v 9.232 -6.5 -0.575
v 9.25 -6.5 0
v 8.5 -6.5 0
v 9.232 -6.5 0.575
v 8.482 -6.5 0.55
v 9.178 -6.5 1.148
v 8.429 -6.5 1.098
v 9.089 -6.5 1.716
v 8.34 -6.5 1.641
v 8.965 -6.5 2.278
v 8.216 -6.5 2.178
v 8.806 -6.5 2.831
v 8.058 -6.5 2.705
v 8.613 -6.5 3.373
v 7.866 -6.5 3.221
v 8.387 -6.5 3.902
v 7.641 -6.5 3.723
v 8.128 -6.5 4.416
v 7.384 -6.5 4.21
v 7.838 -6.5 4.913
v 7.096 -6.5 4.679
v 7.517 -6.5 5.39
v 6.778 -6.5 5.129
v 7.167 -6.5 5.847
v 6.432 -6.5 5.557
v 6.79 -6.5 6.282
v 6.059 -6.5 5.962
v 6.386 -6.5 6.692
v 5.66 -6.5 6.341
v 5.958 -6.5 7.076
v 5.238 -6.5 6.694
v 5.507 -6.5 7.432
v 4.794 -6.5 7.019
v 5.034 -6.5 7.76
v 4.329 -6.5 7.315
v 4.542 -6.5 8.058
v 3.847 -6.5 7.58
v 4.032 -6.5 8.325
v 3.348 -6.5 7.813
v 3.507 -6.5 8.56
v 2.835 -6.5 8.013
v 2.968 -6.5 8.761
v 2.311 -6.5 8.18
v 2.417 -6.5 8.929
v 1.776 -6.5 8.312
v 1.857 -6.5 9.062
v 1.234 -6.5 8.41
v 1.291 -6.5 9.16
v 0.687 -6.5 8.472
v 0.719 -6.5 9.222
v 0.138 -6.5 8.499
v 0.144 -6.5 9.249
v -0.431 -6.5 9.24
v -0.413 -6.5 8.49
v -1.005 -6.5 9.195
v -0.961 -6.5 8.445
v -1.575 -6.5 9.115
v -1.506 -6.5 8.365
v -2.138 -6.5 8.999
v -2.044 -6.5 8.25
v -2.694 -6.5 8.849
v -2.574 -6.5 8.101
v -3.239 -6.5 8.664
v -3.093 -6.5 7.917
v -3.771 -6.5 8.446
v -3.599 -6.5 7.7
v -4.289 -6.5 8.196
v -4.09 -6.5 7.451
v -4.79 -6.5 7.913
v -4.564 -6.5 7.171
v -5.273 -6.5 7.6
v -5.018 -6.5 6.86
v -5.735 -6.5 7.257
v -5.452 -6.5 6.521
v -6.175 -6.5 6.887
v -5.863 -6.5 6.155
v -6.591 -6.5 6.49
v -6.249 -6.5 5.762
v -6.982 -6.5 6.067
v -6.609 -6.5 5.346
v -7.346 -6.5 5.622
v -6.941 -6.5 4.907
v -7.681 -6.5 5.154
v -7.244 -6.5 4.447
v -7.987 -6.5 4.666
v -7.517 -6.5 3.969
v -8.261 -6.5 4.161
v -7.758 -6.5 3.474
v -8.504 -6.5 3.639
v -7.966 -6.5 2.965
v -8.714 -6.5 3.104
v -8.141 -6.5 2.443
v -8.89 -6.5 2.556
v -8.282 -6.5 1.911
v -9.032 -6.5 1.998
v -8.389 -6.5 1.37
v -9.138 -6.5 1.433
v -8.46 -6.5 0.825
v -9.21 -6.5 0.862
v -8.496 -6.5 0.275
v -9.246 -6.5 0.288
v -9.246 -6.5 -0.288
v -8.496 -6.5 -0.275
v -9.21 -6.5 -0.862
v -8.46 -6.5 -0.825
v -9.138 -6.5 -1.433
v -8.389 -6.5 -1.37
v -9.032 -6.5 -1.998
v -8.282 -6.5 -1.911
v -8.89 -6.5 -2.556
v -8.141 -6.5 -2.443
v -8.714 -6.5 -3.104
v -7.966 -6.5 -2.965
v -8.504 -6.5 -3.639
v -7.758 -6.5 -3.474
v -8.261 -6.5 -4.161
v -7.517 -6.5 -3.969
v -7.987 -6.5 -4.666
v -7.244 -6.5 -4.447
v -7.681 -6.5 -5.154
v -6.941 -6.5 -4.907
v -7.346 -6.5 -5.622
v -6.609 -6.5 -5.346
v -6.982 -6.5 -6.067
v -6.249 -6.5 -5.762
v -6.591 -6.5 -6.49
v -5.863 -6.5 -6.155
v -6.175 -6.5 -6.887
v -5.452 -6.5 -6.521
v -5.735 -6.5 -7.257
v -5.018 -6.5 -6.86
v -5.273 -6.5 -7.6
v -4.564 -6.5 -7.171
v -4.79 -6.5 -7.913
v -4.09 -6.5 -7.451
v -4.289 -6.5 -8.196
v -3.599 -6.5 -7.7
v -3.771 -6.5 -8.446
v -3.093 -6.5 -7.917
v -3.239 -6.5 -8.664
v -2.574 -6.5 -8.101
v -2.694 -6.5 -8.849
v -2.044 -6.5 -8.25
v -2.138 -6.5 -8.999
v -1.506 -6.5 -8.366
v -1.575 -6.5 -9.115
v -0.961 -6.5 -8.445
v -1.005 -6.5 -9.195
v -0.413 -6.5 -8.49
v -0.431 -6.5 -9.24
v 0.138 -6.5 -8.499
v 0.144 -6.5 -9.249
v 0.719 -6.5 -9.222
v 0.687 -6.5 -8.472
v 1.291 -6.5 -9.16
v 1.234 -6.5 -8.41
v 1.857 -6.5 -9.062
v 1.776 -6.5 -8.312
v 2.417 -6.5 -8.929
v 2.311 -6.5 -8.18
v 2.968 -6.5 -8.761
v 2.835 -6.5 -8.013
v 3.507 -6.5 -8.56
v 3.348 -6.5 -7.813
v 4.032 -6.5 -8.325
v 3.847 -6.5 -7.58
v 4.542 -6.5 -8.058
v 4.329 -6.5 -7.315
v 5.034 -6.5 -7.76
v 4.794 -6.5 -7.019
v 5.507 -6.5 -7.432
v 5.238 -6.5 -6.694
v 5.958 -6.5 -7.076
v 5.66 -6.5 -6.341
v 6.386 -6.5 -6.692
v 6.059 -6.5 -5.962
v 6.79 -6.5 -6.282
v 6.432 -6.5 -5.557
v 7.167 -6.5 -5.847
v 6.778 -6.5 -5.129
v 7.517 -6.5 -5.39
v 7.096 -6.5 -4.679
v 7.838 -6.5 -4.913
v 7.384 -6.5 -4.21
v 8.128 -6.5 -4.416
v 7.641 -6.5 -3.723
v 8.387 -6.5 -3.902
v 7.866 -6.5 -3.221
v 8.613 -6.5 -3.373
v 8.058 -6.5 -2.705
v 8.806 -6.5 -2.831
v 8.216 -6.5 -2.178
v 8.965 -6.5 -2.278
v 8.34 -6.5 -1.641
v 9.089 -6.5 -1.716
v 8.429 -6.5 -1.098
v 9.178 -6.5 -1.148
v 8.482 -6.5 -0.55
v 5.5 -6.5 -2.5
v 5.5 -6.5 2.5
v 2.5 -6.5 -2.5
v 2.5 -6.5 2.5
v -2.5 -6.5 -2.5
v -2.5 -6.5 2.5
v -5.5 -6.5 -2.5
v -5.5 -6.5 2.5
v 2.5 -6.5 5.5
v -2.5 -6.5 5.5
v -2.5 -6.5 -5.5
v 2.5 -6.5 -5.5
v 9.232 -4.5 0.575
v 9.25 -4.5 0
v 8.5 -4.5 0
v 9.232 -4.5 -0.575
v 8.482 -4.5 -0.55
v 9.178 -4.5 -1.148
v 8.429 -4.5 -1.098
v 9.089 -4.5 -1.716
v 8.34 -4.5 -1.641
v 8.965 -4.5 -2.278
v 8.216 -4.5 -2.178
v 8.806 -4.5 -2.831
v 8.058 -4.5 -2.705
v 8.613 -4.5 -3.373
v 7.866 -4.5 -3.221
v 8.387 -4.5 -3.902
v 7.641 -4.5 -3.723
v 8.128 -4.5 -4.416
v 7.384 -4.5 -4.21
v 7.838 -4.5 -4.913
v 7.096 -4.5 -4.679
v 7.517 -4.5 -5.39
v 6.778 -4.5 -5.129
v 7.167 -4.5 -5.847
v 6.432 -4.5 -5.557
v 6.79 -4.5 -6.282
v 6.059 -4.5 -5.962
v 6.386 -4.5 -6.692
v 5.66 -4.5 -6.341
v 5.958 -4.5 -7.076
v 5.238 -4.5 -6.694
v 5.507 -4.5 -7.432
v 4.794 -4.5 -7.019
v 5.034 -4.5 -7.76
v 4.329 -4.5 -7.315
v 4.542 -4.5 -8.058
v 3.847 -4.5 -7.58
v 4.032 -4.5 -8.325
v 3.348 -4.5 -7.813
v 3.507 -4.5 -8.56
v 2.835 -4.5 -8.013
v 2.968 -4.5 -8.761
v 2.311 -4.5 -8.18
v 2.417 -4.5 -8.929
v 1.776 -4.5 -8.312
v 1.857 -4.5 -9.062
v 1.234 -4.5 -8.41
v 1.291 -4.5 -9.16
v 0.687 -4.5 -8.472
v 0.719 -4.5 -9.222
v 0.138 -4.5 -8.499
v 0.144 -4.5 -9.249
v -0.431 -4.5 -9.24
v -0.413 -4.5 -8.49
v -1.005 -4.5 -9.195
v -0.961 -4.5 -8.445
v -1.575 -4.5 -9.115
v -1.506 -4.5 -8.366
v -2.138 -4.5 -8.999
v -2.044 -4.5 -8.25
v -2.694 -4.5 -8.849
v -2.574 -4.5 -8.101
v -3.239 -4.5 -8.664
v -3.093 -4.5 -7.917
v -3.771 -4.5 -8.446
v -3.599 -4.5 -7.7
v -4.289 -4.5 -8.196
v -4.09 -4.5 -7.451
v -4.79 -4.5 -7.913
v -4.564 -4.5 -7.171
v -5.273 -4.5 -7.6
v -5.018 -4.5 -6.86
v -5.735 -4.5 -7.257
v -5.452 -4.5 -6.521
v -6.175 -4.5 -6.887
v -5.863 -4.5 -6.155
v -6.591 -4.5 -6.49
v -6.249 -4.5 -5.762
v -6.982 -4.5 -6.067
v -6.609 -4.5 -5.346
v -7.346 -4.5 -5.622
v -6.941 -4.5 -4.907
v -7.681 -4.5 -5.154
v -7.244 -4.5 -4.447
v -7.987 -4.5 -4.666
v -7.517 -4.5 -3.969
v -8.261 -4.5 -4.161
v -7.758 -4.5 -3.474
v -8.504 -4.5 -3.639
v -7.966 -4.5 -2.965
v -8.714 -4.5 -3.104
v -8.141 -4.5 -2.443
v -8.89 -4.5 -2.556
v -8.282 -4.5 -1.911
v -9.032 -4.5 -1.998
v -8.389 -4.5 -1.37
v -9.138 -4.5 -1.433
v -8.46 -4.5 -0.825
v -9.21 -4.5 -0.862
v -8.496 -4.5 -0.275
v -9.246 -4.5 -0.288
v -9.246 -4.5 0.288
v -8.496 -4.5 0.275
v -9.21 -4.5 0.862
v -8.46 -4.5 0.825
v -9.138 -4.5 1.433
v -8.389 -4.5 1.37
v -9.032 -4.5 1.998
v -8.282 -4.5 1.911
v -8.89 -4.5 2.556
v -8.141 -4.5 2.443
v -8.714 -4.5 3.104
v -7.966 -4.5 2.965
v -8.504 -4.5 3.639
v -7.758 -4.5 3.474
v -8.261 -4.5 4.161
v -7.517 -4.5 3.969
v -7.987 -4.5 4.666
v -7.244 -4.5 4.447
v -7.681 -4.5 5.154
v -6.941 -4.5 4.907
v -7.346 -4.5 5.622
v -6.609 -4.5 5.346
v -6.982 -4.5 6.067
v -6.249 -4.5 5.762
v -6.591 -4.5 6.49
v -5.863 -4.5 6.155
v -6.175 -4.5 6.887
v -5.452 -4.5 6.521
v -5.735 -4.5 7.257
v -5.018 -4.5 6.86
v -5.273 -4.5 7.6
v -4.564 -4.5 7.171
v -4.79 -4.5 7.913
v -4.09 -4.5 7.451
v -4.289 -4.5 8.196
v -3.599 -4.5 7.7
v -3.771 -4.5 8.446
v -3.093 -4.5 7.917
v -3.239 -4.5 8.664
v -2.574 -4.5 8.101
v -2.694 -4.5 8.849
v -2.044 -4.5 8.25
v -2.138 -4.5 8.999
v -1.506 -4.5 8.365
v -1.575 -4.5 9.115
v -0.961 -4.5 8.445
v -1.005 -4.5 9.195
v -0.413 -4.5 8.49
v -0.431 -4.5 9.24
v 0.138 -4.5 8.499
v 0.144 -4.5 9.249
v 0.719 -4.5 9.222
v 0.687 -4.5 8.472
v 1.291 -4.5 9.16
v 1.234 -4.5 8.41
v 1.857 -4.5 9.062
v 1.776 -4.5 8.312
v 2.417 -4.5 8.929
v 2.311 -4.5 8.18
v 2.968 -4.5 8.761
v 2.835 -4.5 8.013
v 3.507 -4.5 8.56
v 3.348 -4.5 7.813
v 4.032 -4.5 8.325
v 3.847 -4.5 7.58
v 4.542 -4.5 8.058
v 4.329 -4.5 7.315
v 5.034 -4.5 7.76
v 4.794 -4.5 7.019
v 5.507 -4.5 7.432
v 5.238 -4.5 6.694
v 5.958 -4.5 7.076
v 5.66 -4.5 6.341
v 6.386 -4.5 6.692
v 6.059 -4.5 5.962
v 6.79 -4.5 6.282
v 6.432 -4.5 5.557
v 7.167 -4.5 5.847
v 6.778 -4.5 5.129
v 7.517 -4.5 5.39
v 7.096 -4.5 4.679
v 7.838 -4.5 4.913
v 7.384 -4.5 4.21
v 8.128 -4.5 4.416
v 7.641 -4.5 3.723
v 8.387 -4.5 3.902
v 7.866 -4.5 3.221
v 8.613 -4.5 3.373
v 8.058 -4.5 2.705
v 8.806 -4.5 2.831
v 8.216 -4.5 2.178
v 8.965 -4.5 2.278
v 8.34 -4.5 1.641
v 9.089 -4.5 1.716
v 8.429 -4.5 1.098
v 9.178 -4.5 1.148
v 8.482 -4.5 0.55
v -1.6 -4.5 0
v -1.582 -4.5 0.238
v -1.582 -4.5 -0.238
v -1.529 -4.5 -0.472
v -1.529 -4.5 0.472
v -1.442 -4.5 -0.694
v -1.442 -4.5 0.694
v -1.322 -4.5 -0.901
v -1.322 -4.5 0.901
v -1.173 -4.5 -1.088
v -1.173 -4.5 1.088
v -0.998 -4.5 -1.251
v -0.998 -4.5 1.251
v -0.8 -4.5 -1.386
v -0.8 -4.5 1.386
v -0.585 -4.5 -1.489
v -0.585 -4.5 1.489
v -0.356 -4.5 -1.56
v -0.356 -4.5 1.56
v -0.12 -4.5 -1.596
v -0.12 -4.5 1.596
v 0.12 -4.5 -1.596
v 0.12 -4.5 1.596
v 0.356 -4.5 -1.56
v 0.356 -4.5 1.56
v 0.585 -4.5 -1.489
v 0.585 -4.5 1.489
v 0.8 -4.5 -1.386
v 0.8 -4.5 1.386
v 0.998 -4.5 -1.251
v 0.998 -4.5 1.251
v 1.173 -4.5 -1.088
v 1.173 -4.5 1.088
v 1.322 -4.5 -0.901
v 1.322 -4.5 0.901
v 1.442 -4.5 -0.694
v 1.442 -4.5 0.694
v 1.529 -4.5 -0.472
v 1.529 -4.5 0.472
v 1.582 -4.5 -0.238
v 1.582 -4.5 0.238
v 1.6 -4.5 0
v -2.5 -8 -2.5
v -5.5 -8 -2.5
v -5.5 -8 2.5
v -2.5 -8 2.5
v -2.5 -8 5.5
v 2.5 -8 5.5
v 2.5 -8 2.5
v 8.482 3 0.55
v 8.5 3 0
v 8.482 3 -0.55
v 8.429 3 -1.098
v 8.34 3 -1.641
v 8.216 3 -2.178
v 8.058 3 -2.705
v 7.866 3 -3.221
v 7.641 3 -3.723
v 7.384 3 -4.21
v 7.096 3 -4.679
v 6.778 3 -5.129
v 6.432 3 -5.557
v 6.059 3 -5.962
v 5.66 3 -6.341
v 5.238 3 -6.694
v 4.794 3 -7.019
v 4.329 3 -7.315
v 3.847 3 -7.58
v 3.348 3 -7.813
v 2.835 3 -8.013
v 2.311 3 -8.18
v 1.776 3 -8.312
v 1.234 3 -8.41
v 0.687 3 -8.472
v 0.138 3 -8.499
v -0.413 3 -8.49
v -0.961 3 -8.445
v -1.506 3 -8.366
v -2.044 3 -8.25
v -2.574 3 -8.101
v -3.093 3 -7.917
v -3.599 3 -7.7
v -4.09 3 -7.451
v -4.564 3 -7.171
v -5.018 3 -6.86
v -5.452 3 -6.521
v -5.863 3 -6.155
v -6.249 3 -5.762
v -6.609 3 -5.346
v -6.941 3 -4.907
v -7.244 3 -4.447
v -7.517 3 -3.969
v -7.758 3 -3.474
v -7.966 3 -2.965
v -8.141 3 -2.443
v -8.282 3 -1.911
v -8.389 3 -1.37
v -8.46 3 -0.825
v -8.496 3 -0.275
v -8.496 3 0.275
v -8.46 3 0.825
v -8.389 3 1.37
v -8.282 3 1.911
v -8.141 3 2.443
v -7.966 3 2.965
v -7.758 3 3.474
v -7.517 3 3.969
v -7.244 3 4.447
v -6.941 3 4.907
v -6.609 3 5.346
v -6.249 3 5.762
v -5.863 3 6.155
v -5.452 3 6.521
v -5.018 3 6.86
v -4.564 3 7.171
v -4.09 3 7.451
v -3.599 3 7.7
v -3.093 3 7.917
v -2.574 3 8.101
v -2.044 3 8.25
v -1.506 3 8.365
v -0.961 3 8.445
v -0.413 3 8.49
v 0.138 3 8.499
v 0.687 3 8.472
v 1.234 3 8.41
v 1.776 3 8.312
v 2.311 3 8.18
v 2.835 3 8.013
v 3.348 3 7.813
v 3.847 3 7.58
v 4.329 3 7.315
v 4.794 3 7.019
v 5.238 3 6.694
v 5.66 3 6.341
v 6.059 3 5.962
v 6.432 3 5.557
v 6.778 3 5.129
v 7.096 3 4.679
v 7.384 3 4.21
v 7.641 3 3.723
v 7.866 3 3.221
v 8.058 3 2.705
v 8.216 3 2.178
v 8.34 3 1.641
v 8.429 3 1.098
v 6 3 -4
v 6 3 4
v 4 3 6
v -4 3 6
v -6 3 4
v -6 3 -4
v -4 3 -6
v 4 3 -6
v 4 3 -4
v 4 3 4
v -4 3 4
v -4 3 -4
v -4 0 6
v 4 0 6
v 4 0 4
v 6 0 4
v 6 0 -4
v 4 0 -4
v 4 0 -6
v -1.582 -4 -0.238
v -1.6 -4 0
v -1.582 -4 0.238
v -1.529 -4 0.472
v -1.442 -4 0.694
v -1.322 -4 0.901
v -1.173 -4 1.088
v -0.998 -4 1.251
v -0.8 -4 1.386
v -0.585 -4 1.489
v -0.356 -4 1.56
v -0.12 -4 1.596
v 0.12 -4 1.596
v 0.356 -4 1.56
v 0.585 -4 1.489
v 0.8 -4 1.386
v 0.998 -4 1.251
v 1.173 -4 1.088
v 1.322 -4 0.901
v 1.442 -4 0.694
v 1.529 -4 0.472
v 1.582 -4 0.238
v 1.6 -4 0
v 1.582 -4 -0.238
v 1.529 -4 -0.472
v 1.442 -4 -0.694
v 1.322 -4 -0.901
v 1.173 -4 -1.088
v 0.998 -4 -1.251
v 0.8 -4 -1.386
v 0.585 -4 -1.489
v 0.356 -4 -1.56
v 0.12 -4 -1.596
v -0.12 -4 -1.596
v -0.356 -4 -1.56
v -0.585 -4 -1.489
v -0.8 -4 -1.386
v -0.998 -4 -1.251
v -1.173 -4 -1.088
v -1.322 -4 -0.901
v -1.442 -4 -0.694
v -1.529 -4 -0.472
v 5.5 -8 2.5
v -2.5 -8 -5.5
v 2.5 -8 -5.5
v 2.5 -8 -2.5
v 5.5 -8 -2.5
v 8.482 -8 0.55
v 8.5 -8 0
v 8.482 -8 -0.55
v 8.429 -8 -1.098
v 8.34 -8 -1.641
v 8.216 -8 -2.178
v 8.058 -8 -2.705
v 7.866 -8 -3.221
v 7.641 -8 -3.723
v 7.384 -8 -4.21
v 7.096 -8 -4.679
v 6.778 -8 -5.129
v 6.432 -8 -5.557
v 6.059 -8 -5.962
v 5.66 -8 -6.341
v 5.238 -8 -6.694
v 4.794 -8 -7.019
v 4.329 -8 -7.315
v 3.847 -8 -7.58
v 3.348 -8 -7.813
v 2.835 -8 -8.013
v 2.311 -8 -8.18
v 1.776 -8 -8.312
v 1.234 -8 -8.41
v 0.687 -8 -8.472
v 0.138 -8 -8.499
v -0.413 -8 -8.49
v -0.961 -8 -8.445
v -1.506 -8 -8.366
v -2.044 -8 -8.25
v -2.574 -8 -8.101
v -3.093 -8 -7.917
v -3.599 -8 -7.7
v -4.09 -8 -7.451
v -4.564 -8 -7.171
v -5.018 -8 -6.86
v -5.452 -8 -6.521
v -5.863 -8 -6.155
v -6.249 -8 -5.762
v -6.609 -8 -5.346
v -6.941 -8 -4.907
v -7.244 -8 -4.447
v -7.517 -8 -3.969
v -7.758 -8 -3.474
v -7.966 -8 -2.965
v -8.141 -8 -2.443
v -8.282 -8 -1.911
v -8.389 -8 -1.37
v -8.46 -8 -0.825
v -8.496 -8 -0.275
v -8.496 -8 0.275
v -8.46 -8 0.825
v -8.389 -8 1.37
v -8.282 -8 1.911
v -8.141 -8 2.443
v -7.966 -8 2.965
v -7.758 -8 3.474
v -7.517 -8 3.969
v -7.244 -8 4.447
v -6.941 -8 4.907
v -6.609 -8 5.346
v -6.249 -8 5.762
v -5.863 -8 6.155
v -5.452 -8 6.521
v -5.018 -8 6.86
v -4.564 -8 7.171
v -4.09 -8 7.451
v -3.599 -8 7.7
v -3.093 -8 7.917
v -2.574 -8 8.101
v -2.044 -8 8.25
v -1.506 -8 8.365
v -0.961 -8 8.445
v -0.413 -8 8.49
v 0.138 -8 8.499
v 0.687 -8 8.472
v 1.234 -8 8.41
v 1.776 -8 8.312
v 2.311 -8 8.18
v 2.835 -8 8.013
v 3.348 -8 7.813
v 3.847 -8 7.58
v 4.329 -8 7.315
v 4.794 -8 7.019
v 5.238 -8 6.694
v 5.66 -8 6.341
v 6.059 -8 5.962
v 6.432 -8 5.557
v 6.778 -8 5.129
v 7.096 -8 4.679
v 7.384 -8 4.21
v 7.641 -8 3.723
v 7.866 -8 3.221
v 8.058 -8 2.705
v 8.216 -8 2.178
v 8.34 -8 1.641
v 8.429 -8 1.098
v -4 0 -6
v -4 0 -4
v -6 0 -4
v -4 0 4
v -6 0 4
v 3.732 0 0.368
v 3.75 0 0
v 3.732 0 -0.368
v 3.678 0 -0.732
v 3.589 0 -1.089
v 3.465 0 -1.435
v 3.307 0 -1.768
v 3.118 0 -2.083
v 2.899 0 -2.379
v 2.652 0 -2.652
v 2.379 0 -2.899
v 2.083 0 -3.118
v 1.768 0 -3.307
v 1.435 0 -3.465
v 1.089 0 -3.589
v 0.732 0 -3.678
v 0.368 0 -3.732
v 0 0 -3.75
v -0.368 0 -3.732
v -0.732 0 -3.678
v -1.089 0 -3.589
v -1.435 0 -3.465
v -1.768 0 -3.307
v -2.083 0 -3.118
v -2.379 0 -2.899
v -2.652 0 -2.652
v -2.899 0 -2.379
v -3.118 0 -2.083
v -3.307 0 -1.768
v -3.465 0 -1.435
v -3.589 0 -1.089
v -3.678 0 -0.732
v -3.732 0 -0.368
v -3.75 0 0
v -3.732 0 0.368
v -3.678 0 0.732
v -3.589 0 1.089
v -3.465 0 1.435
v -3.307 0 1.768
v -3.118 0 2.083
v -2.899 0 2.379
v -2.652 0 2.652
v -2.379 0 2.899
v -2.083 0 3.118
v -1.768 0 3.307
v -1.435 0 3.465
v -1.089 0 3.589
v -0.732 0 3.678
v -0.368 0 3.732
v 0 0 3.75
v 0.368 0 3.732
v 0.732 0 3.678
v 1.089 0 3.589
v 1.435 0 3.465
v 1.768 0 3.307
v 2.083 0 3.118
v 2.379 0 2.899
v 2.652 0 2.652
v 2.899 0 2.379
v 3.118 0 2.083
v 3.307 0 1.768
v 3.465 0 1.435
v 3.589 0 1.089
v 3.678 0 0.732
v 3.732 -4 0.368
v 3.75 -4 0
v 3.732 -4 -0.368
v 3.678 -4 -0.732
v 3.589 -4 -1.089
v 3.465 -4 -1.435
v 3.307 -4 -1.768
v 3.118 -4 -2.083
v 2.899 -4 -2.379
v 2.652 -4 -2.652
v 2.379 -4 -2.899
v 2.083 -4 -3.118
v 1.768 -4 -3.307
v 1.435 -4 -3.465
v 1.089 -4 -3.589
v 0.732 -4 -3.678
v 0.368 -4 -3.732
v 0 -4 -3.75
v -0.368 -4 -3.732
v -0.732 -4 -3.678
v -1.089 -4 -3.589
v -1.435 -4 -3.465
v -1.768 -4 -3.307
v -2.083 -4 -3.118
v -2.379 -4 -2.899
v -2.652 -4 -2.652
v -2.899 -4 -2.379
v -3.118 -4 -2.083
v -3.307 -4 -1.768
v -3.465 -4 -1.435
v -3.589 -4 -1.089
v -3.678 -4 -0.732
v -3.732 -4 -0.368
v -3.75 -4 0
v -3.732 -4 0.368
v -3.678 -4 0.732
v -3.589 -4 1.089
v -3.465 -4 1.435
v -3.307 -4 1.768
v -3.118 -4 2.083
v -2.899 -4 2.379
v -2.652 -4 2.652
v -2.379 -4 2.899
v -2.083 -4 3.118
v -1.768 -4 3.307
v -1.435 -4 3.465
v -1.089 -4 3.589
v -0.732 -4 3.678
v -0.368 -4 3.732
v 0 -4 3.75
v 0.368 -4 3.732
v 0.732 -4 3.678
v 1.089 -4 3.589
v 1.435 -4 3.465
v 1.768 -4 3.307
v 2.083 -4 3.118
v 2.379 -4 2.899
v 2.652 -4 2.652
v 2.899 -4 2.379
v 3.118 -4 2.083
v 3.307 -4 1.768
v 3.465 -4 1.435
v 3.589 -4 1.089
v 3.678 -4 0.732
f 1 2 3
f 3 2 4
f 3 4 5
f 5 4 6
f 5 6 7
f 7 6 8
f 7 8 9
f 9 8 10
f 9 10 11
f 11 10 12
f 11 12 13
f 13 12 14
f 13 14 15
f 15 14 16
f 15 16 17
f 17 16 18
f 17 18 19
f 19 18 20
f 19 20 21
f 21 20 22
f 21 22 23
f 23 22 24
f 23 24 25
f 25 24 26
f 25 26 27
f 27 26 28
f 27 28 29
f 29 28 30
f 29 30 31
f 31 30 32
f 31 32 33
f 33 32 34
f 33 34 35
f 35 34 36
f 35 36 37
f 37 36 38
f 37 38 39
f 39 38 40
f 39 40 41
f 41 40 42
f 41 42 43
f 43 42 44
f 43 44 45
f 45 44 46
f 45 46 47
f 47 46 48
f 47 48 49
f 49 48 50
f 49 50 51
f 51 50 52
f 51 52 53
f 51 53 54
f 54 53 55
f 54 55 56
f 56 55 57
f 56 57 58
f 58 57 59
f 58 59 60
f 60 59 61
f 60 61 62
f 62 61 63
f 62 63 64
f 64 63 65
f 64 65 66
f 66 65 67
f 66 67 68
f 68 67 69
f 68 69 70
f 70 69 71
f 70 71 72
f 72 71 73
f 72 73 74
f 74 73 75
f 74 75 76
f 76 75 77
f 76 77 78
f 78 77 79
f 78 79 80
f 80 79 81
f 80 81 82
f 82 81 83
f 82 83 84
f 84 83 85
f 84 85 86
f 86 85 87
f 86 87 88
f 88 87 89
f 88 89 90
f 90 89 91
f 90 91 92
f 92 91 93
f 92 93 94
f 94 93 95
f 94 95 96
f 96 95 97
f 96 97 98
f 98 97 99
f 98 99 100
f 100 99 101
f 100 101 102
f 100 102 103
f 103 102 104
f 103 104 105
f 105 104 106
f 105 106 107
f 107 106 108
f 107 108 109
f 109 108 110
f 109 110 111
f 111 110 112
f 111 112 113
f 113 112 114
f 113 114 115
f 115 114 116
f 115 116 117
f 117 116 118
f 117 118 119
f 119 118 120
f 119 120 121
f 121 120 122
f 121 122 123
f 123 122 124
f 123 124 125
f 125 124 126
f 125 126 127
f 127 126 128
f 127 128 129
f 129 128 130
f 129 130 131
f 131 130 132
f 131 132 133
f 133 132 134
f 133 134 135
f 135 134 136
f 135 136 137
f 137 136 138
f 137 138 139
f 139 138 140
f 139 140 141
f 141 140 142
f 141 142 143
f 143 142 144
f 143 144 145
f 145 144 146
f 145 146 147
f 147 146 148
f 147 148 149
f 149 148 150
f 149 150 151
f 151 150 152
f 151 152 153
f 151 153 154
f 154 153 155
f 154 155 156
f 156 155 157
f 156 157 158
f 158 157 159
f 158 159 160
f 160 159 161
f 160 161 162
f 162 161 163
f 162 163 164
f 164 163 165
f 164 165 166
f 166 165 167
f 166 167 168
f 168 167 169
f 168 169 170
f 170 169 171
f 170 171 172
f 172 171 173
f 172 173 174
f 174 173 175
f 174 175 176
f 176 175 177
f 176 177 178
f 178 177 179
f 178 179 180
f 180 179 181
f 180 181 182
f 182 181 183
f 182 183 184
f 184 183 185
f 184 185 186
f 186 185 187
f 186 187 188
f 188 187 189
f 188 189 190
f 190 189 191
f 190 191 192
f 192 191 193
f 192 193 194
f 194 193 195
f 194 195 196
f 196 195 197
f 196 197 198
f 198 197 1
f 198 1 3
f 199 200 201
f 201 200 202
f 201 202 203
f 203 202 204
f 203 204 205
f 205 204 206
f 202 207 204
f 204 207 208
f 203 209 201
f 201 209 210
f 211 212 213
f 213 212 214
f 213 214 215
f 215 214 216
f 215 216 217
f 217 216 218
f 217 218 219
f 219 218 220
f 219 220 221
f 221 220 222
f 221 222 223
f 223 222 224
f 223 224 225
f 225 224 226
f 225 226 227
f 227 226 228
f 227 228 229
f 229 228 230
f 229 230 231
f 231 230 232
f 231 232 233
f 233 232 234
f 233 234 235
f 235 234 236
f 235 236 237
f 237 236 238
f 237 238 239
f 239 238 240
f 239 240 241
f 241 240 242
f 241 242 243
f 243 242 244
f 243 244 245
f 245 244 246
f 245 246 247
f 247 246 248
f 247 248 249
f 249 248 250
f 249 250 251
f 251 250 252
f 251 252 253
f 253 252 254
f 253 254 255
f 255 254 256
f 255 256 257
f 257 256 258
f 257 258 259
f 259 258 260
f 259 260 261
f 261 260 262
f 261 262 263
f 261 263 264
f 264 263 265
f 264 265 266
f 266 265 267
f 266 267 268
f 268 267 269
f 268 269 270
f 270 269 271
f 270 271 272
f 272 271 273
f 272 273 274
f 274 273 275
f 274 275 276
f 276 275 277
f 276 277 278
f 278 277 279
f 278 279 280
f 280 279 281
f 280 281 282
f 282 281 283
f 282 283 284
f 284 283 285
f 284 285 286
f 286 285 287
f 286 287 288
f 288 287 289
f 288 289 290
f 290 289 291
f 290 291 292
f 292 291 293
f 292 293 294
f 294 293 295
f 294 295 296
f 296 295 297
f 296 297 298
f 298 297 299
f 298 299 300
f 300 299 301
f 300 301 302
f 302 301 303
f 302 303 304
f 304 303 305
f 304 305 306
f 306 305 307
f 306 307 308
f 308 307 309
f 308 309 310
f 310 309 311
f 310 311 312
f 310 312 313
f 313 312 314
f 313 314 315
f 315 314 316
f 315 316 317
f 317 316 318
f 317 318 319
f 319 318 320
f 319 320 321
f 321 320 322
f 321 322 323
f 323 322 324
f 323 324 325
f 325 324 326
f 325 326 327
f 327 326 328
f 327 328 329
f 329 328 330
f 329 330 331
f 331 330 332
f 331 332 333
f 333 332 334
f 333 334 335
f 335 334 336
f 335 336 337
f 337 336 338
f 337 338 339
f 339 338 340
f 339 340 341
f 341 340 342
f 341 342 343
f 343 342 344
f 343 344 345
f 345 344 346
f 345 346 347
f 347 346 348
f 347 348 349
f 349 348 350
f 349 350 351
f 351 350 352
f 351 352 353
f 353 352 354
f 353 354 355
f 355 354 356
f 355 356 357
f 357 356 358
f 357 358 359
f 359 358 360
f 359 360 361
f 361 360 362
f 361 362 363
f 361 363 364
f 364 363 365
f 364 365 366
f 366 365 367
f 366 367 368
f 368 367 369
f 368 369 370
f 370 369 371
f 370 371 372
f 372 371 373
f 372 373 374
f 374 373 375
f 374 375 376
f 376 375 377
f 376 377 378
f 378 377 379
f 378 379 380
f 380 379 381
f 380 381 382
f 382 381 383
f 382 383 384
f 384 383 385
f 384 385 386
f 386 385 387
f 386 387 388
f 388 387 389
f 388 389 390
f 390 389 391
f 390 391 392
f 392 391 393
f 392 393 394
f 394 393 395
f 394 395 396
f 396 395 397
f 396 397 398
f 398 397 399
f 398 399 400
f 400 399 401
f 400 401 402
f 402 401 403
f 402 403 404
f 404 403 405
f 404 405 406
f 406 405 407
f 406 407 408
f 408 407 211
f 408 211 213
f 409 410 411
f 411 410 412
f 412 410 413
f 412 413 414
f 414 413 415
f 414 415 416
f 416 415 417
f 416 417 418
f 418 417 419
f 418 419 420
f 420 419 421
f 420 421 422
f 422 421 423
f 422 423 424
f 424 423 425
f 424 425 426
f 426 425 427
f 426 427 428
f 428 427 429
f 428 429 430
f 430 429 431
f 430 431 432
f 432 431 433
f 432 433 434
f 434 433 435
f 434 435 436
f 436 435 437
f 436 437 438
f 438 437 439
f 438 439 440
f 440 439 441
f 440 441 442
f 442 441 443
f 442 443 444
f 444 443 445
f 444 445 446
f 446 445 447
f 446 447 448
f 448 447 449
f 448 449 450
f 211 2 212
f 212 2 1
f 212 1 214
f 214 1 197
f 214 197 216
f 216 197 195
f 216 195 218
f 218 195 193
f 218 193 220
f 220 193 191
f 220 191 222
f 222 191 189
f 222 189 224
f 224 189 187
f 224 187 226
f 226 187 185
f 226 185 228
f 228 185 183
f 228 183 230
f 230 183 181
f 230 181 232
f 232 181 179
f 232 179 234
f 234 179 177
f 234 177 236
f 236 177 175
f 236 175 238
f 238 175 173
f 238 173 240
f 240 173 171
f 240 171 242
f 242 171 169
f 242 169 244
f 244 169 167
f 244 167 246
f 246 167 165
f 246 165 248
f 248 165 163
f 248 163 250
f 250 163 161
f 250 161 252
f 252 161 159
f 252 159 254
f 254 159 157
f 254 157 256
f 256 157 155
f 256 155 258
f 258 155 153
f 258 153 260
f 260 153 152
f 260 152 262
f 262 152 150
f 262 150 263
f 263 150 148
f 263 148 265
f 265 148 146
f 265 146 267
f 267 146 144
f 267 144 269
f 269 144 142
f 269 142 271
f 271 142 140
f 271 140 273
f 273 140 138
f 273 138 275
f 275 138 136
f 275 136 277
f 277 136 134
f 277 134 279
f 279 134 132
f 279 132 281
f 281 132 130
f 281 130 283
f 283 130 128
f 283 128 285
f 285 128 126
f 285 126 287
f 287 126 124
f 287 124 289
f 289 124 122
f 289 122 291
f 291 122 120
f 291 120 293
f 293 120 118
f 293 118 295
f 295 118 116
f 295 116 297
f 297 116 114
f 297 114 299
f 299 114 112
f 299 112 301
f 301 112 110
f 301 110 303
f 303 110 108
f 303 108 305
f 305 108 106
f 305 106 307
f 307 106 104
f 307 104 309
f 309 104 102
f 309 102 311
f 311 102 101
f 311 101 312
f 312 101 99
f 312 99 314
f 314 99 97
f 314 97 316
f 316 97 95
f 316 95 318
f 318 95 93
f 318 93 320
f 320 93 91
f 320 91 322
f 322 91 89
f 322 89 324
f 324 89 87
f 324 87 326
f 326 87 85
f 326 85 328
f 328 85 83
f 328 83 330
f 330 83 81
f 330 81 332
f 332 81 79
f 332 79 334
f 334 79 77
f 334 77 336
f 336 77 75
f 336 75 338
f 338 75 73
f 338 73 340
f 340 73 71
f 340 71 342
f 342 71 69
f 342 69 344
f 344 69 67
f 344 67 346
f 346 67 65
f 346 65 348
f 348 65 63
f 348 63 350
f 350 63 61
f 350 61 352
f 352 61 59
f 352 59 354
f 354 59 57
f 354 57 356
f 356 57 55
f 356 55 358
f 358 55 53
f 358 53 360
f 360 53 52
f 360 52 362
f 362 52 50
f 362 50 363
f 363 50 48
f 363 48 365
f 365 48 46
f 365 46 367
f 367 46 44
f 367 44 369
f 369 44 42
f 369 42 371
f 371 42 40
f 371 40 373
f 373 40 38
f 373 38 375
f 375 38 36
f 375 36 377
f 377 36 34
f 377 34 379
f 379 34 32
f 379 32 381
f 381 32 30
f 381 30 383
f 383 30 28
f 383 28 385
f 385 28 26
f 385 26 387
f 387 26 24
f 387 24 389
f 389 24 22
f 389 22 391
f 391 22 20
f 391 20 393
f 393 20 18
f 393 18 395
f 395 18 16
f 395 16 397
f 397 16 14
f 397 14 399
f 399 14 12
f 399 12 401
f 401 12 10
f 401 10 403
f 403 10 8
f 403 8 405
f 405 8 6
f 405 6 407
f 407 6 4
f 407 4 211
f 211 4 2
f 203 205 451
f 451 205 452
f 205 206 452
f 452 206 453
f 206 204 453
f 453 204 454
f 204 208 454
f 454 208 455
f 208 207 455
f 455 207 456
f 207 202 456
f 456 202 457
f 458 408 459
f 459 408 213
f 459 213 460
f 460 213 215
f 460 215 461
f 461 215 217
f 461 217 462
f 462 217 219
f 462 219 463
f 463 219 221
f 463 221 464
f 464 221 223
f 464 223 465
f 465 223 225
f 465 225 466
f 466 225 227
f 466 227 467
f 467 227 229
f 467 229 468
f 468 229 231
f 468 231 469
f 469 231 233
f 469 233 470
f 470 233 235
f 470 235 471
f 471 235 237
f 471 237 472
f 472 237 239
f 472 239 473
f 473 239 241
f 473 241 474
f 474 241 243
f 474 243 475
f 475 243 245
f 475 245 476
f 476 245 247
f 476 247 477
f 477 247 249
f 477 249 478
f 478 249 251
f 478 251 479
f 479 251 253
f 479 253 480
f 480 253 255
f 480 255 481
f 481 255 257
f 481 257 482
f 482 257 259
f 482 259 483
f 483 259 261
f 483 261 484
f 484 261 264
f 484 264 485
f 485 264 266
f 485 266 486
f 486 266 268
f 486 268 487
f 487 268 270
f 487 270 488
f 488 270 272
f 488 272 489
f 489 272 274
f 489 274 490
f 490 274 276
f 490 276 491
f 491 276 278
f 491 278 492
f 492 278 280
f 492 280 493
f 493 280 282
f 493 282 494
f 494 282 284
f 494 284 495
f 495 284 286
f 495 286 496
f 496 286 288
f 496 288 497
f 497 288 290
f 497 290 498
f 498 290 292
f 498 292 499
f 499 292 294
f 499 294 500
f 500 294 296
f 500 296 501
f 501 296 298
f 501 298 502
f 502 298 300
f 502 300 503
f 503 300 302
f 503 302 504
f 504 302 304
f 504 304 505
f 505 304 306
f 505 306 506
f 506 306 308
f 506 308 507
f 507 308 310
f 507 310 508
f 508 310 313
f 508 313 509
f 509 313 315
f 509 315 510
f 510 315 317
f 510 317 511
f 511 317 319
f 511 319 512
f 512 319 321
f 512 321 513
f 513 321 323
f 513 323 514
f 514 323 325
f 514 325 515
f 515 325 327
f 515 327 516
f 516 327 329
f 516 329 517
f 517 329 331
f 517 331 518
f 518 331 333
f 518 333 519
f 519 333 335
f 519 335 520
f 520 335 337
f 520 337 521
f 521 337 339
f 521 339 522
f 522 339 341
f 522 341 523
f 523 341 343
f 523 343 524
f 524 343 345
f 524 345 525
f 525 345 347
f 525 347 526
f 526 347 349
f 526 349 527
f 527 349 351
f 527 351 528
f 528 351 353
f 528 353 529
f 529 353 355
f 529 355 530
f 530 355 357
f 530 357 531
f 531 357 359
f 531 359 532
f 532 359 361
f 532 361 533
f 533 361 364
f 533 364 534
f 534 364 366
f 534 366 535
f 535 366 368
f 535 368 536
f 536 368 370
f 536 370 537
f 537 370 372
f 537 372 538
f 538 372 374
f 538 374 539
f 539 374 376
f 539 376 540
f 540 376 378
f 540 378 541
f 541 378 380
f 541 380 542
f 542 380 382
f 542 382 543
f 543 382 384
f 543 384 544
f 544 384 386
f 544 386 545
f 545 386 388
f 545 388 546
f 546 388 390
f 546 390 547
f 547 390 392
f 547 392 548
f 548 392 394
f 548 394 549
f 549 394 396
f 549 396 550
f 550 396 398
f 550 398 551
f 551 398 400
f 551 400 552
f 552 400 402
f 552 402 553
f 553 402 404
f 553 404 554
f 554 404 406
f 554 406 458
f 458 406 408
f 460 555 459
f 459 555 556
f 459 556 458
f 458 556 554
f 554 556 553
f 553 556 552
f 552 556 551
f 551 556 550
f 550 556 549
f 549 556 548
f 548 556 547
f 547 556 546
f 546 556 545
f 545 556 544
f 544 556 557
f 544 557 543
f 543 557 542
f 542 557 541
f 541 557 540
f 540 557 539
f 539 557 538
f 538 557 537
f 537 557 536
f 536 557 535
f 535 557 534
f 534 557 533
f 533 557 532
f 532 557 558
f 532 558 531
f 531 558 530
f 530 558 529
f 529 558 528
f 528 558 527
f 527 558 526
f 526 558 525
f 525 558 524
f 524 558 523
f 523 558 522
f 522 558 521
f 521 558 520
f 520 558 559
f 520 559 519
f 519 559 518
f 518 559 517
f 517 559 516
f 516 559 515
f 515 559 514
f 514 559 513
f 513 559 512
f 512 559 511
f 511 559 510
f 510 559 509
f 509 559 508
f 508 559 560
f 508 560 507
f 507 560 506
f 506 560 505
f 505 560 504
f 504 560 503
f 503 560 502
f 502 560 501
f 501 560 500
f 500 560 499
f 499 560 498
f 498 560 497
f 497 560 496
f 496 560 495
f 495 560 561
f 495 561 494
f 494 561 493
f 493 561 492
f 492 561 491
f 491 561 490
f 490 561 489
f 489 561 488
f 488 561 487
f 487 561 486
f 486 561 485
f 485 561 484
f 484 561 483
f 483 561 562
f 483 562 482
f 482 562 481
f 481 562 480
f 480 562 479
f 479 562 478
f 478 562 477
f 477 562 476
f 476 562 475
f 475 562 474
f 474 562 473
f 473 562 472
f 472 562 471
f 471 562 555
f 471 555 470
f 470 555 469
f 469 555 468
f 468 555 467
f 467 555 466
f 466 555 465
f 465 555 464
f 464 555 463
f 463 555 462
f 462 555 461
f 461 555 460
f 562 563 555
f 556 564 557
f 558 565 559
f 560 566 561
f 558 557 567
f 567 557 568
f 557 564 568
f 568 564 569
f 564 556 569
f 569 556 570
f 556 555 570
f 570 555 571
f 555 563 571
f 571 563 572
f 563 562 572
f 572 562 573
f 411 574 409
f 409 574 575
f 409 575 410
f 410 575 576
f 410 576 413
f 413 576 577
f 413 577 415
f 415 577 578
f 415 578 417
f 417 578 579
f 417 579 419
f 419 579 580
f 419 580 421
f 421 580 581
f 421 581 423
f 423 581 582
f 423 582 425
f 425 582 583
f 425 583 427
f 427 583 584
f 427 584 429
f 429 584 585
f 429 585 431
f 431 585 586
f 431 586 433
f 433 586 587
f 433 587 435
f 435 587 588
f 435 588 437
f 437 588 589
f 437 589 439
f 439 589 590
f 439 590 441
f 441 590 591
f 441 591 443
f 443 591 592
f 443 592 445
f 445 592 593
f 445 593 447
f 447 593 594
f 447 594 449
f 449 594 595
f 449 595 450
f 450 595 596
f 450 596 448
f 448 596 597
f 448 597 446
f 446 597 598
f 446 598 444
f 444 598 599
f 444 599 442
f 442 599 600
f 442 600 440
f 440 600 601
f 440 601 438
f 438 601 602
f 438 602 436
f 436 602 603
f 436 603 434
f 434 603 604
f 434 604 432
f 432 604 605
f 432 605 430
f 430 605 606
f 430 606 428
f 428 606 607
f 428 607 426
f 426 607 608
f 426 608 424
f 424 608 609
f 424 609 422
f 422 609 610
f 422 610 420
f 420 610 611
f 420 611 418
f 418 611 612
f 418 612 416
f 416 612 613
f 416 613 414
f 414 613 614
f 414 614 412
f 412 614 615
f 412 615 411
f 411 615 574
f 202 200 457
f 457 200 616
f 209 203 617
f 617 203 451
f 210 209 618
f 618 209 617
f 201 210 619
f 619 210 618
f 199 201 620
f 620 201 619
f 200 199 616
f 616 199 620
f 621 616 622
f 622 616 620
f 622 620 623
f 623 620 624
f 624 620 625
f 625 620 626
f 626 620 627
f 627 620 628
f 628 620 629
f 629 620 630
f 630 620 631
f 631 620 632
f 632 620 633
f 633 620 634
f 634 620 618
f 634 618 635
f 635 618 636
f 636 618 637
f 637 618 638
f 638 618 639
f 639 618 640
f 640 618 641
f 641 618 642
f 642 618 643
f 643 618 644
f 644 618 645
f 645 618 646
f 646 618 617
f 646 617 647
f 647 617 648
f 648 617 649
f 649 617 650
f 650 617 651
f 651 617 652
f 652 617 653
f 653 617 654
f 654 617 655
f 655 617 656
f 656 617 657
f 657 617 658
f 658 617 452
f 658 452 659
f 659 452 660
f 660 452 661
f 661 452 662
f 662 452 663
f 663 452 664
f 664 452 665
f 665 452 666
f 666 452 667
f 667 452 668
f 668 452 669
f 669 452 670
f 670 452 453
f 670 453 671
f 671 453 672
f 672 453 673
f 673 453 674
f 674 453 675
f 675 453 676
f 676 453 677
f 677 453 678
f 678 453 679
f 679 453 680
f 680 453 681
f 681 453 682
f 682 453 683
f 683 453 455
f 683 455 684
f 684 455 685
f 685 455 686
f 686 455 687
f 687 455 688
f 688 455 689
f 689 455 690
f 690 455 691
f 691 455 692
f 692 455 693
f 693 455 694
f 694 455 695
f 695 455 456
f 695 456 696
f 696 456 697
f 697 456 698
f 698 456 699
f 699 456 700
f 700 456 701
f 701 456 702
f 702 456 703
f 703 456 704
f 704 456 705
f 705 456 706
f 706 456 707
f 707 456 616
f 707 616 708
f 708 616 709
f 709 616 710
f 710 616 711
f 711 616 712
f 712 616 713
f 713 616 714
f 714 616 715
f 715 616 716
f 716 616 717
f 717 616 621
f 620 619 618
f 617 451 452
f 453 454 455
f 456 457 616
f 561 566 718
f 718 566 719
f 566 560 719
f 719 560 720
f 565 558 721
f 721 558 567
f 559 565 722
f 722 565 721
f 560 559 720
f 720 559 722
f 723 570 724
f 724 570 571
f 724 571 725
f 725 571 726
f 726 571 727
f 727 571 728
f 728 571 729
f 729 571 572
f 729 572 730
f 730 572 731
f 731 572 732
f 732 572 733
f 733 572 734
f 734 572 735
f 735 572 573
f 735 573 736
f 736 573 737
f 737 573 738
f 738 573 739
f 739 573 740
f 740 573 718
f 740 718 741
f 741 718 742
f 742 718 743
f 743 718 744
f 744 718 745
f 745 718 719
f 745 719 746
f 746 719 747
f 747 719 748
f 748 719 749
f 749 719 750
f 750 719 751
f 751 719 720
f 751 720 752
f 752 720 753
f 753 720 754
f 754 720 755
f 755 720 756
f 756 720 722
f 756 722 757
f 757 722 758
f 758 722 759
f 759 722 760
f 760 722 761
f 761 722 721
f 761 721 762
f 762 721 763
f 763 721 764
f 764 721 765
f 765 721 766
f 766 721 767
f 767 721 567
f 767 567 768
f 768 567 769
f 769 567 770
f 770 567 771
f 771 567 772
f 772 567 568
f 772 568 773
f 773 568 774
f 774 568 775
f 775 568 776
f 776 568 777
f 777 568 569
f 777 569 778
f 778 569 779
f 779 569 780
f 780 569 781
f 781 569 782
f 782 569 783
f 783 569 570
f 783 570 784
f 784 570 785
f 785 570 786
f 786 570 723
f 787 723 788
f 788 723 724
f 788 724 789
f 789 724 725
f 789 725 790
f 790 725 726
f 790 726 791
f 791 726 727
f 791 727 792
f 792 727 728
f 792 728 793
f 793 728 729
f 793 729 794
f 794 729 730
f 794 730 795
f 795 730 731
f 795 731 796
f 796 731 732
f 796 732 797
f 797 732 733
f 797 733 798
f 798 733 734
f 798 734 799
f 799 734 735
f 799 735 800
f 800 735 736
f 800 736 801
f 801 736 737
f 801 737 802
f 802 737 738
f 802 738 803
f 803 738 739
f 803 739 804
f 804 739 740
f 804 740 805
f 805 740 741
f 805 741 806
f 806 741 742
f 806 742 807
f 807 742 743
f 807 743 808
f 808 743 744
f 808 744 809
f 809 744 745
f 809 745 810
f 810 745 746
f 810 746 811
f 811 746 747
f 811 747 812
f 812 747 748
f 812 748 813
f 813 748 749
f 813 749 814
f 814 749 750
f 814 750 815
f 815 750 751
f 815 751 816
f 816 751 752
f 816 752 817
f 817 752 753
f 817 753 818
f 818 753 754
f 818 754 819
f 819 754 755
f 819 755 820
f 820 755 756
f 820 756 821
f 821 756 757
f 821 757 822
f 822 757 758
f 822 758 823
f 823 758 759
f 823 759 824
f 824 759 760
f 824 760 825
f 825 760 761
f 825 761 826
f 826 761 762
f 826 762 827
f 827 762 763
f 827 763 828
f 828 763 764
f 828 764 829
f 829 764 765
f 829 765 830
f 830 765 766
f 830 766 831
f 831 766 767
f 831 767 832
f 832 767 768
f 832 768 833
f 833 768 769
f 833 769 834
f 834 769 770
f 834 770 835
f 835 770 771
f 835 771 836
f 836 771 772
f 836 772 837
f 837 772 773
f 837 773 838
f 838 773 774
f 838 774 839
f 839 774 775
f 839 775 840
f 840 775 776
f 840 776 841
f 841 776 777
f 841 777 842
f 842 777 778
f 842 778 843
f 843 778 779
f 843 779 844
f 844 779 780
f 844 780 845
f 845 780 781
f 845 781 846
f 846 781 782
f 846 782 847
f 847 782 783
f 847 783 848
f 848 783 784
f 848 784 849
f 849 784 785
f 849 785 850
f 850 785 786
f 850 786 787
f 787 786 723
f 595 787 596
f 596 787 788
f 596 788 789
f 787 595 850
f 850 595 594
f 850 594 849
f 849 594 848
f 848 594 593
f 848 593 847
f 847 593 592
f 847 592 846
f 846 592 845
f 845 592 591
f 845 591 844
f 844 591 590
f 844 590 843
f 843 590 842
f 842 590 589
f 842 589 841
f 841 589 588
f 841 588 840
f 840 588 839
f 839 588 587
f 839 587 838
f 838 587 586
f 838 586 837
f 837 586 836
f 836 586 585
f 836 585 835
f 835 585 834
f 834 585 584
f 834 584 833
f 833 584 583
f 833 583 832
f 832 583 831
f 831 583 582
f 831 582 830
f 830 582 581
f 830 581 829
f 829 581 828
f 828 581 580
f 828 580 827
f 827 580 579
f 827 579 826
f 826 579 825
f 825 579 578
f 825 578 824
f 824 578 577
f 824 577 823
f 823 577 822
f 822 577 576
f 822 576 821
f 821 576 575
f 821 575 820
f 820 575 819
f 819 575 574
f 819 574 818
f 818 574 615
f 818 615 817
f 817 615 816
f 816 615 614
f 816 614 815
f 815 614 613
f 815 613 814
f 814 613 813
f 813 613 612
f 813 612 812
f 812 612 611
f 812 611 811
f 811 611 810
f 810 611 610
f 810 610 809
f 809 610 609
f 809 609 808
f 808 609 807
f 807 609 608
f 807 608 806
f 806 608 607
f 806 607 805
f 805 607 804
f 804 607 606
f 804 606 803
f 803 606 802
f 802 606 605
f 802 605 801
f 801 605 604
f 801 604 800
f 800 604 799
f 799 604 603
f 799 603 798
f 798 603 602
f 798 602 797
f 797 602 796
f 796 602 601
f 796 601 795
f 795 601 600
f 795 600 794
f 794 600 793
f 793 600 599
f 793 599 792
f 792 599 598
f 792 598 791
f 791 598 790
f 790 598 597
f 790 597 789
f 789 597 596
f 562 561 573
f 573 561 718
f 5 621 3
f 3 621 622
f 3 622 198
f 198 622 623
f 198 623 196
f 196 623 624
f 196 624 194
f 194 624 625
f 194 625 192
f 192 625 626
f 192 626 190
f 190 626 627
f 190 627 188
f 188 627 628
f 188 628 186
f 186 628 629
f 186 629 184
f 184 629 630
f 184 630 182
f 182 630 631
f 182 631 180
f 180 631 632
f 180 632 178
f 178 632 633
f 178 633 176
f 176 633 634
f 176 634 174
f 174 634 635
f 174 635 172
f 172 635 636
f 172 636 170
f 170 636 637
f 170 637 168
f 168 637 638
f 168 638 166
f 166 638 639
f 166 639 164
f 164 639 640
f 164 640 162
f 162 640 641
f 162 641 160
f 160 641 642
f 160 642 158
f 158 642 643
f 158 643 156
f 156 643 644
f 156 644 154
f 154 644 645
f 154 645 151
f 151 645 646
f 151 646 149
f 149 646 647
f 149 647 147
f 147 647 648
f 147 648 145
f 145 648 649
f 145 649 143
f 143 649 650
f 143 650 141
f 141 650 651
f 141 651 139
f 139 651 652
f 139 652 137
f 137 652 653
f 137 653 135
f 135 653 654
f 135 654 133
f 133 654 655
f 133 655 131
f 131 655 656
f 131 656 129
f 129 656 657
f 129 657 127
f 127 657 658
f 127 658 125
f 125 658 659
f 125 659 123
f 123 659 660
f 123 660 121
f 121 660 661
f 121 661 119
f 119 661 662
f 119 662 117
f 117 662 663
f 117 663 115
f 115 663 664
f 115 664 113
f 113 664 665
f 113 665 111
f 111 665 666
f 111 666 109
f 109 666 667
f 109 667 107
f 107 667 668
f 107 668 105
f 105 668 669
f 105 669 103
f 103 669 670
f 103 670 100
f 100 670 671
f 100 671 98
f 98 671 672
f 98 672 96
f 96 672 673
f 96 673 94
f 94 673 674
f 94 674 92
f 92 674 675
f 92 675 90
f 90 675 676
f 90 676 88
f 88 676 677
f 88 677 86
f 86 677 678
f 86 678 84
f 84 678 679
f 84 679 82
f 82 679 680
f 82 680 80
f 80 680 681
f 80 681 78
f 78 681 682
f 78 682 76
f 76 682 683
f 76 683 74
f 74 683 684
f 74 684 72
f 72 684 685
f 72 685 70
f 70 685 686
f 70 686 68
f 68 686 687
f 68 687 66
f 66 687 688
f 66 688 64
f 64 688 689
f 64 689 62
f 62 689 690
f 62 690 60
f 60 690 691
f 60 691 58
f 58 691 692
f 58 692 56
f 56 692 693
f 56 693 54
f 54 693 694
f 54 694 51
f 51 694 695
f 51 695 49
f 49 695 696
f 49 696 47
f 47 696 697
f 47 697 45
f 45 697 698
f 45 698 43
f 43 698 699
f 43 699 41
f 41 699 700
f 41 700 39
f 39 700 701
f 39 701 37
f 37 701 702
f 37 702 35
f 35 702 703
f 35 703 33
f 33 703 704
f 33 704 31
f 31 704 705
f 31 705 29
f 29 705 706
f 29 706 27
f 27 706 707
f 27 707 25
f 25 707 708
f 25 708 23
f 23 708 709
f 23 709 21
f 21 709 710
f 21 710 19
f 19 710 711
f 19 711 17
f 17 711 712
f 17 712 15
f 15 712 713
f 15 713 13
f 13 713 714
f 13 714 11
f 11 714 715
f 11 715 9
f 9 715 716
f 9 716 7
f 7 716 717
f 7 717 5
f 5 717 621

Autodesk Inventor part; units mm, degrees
ref_plane "YZ Plane" through (0, 0, 0) normal (1, 0, 0) x (0, 1, 0)
ref_plane "XZ Plane" through (0, 0, 0) normal (0, 1, 0) x (-1, 0, 0)
ref_plane "XY Plane" through (0, 0, 0) normal (0, 0, 1) x (1, 0, 0)
sketch "Skizze1" plane through (0, 0, 0) normal (0, 1, 0) x (-1, 0, 0)
  circle A0 centre (0, 0) radius 8.5
  line L0 (0, -11.9) -> (0, 11.9) projected
  line L1 (11.9, 0) -> (-11.9, 0) projected
  line L2 (6, -6) -> (-6, -6)
  line L3 (-6, -6) -> (-6, 6)
  line L4 (6, 6) -> (6, -6)
  line L5 (6, -6) -> (-6, 6) construction
  line L6 (-6, -6) -> (6, 6) construction
  line L7 (6, 6) -> (-6, 6)
  point P0 (6, -1)
  point P1 (-6, -1)
  dimension "d10" = 12
  dimension "d12" = 17
  dimension "d53" = 12
extrude "Extrusion1" add sketch "Skizze1" along normal blind 6
sketch "Skizze3" plane through (0, 0, 0) normal (0, -1, 0) x (1, 0, 0)
  circle A0 centre (0, 0) radius 8.5
  dimension "d99" = 17
extrude "Extrusion3" add sketch "Skizze3" along normal blind 6
sketch "Skizze9" plane through (0, 6, 0) normal (0, 1, 0) x (1, 0, 0)
  line L0 (-6, 6) -> (6, 6)
  line L1 (6, 6) -> (6, -6)
  line L2 (6, -6) -> (-6, -6)
  line L3 (-6, -6) -> (-6, 6)
  line L4 (-6, 6) -> (6, -6) construction
  line L5 (6, 6) -> (-6, -6) construction
  point P0 (0, 0)
  dimension "d54" = 12
  dimension "d55" = 12
extrude "Extrusion9" cut sketch "Skizze9" against normal blind 6
sketch "Skizze10" plane through (0, 0, 0) normal (0, 1, 0) x (1, 0, 0)
  circle A0 centre (0, 0) radius 3.75
  dimension "d58" = 7.5
extrude "Extrusion10" cut sketch "Skizze10" against normal blind 4
sketch "Skizze12" plane through (0, 6, 0) normal (0, 1, 0) x (1, 0, 0)
  line L0 (-6, 6) -> (-4, 6)
  line L1 (-4, 6) -> (-4, 4)
  line L2 (-4, 4) -> (-6, 4)
  line L3 (-6, 4) -> (-6, 6)
  line L4 (6, 6) -> (6, -6) projected
  line L5 (6, 6) -> (4, 6)
  line L6 (4, 6) -> (4, 4)
  line L7 (4, 4) -> (6, 4)
  line L8 (6, 4) -> (6, 6)
  line L9 (6, -6) -> (-6, -6) projected
  line L10 (-6, -6) -> (-4, -6)
  line L11 (-4, -6) -> (-4, -4)
  line L12 (-4, -4) -> (-6, -4)
  line L13 (-6, -4) -> (-6, -6)
  line L14 (6, -6) -> (4, -6)
  line L15 (4, -6) -> (4, -4)
  line L16 (4, -4) -> (6, -4)
  line L17 (6, -4) -> (6, -6)
  point P0 (0, 0)
  dimension "d64" = 2
  dimension "d65" = 2
  dimension "d66" = 2
  dimension "d67" = 2
  dimension "d68" = 2
  dimension "d69" = 2
  dimension "d70" = 2
  dimension "d71" = 2
extrude "Extrusion12" add sketch "Skizze12" against normal up to surface (6 mm away)
sketch "Skizze13" plane through (0, -6, 0) normal (0, -1, 0) x (1, 0, 0)
  line L0 (-2.5, 5.5) -> (2.5, 5.5)
  line L1 (5.5, 2.5) -> (5.5, -2.5)
  line L2 (2.5, -5.5) -> (-2.5, -5.5)
  line L3 (-5.5, -2.5) -> (-5.5, 2.5)
  line L4 (0, 12.6) -> (0, -12.6) projected
  line L5 (-12.6, 0) -> (12.6, 0) projected
  line L6 (2.5, 5.5) -> (2.5, 2.5)
  line L7 (2.5, 2.5) -> (5.5, 2.5)
  line L8 (-2.5, 5.5) -> (-2.5, 2.5)
  line L9 (-2.5, 2.5) -> (-5.5, 2.5)
  line L10 (-2.5, -5.5) -> (-2.5, -2.5)
  line L11 (-2.5, -2.5) -> (-5.5, -2.5)
  line L12 (2.5, -5.5) -> (2.5, -2.5)
  line L13 (2.5, -2.5) -> (5.5, -2.5)
  circle A0 centre (0, 0) radius 8.5
  dimension "d76" = 3
  dimension "d77" = 3
  dimension "d78" = 3
  dimension "d79" = 3
  dimension "d80" = 3
  dimension "d81" = 3
  dimension "d82" = 3
  dimension "d83" = 3
  dimension "d84" = 90
  dimension "d85" = 2.5
  dimension "d86" = 2.5
  dimension "d87" = 2.5
  dimension "d88" = 2.5
  dimension "d89" = 90
  dimension "d90" = 17
extrude "Extrusion13" add sketch "Skizze13" along normal blind 2 contours L8 L9 L3 L5 A0 L4 L0 | L4 A0 L5 L1 L7 L6 L0 | A0 L4 L2 L12 L13 L1 L5 | L5 L3 L11 L10 L2 L4 A0
sketch "Skizze14" plane through (0, -4, 0) normal (0, 1, 0) x (1, 0, 0)
  circle A0 centre (0, 0) radius 1.6
  dimension "d93" = 3.2
extrude "Extrusion14" cut sketch "Skizze14" against normal up to surface (2 mm away)
sketch "Skizze15" plane through (0, 6, 0) normal (0, 1, 0) x (1, 0, 0)
  circle A0 centre (0, 0) radius 9
  line L0 (-4, 6) -> (4, 6) projected
  line L1 (-4, 6) -> (4, 6)
  line L2 (4, 4) -> (6, 4) projected
  line L3 (4, 6) -> (4, 4)
  line L4 (6, 4) -> (6, -4) projected
  line L5 (4, 4) -> (6, 4)
  line L6 (6, 4) -> (6, -4)
  line L7 (6, -4) -> (4, -4)
  line L8 (4, -4) -> (4, -6) projected
  line L9 (4, -4) -> (4, -6)
  line L10 (4, -6) -> (-4, -6) projected
  line L11 (4, -6) -> (-4, -6)
  line L12 (-4, -4) -> (-4, -6) projected
  line L13 (-4, -6) -> (-4, -4)
  line L14 (-6, -4) -> (-4, -4) projected
  line L15 (-4, -4) -> (-6, -4)
  line L16 (-4, 4) -> (-6, 4) projected
  line L17 (-6, -4) -> (-6, 4)
  line L18 (-6, 4) -> (-4, 4)
  line L19 (-4, 4) -> (-4, 6) projected
  line L20 (-4, 4) -> (-4, 6)
  dimension "d96" = 18
extrude "Extrusion15" cut sketch "Skizze15" against normal blind 3
ref_plane "Arbeitsebene2" through (0, -6.5, 0) normal (0, -1, 0) x (1, 0, 0)
sketch "Skizze17" plane through (0, -6.5, 0) normal (0, -1, 0) x (1, 0, 0)
  circle A0 centre (0, 0) radius 9.25
  dimension "d102" = 18.5
extrude "Extrusion16" add sketch "Skizze17" against normal blind 2
properties part number "_3D-Druck"
